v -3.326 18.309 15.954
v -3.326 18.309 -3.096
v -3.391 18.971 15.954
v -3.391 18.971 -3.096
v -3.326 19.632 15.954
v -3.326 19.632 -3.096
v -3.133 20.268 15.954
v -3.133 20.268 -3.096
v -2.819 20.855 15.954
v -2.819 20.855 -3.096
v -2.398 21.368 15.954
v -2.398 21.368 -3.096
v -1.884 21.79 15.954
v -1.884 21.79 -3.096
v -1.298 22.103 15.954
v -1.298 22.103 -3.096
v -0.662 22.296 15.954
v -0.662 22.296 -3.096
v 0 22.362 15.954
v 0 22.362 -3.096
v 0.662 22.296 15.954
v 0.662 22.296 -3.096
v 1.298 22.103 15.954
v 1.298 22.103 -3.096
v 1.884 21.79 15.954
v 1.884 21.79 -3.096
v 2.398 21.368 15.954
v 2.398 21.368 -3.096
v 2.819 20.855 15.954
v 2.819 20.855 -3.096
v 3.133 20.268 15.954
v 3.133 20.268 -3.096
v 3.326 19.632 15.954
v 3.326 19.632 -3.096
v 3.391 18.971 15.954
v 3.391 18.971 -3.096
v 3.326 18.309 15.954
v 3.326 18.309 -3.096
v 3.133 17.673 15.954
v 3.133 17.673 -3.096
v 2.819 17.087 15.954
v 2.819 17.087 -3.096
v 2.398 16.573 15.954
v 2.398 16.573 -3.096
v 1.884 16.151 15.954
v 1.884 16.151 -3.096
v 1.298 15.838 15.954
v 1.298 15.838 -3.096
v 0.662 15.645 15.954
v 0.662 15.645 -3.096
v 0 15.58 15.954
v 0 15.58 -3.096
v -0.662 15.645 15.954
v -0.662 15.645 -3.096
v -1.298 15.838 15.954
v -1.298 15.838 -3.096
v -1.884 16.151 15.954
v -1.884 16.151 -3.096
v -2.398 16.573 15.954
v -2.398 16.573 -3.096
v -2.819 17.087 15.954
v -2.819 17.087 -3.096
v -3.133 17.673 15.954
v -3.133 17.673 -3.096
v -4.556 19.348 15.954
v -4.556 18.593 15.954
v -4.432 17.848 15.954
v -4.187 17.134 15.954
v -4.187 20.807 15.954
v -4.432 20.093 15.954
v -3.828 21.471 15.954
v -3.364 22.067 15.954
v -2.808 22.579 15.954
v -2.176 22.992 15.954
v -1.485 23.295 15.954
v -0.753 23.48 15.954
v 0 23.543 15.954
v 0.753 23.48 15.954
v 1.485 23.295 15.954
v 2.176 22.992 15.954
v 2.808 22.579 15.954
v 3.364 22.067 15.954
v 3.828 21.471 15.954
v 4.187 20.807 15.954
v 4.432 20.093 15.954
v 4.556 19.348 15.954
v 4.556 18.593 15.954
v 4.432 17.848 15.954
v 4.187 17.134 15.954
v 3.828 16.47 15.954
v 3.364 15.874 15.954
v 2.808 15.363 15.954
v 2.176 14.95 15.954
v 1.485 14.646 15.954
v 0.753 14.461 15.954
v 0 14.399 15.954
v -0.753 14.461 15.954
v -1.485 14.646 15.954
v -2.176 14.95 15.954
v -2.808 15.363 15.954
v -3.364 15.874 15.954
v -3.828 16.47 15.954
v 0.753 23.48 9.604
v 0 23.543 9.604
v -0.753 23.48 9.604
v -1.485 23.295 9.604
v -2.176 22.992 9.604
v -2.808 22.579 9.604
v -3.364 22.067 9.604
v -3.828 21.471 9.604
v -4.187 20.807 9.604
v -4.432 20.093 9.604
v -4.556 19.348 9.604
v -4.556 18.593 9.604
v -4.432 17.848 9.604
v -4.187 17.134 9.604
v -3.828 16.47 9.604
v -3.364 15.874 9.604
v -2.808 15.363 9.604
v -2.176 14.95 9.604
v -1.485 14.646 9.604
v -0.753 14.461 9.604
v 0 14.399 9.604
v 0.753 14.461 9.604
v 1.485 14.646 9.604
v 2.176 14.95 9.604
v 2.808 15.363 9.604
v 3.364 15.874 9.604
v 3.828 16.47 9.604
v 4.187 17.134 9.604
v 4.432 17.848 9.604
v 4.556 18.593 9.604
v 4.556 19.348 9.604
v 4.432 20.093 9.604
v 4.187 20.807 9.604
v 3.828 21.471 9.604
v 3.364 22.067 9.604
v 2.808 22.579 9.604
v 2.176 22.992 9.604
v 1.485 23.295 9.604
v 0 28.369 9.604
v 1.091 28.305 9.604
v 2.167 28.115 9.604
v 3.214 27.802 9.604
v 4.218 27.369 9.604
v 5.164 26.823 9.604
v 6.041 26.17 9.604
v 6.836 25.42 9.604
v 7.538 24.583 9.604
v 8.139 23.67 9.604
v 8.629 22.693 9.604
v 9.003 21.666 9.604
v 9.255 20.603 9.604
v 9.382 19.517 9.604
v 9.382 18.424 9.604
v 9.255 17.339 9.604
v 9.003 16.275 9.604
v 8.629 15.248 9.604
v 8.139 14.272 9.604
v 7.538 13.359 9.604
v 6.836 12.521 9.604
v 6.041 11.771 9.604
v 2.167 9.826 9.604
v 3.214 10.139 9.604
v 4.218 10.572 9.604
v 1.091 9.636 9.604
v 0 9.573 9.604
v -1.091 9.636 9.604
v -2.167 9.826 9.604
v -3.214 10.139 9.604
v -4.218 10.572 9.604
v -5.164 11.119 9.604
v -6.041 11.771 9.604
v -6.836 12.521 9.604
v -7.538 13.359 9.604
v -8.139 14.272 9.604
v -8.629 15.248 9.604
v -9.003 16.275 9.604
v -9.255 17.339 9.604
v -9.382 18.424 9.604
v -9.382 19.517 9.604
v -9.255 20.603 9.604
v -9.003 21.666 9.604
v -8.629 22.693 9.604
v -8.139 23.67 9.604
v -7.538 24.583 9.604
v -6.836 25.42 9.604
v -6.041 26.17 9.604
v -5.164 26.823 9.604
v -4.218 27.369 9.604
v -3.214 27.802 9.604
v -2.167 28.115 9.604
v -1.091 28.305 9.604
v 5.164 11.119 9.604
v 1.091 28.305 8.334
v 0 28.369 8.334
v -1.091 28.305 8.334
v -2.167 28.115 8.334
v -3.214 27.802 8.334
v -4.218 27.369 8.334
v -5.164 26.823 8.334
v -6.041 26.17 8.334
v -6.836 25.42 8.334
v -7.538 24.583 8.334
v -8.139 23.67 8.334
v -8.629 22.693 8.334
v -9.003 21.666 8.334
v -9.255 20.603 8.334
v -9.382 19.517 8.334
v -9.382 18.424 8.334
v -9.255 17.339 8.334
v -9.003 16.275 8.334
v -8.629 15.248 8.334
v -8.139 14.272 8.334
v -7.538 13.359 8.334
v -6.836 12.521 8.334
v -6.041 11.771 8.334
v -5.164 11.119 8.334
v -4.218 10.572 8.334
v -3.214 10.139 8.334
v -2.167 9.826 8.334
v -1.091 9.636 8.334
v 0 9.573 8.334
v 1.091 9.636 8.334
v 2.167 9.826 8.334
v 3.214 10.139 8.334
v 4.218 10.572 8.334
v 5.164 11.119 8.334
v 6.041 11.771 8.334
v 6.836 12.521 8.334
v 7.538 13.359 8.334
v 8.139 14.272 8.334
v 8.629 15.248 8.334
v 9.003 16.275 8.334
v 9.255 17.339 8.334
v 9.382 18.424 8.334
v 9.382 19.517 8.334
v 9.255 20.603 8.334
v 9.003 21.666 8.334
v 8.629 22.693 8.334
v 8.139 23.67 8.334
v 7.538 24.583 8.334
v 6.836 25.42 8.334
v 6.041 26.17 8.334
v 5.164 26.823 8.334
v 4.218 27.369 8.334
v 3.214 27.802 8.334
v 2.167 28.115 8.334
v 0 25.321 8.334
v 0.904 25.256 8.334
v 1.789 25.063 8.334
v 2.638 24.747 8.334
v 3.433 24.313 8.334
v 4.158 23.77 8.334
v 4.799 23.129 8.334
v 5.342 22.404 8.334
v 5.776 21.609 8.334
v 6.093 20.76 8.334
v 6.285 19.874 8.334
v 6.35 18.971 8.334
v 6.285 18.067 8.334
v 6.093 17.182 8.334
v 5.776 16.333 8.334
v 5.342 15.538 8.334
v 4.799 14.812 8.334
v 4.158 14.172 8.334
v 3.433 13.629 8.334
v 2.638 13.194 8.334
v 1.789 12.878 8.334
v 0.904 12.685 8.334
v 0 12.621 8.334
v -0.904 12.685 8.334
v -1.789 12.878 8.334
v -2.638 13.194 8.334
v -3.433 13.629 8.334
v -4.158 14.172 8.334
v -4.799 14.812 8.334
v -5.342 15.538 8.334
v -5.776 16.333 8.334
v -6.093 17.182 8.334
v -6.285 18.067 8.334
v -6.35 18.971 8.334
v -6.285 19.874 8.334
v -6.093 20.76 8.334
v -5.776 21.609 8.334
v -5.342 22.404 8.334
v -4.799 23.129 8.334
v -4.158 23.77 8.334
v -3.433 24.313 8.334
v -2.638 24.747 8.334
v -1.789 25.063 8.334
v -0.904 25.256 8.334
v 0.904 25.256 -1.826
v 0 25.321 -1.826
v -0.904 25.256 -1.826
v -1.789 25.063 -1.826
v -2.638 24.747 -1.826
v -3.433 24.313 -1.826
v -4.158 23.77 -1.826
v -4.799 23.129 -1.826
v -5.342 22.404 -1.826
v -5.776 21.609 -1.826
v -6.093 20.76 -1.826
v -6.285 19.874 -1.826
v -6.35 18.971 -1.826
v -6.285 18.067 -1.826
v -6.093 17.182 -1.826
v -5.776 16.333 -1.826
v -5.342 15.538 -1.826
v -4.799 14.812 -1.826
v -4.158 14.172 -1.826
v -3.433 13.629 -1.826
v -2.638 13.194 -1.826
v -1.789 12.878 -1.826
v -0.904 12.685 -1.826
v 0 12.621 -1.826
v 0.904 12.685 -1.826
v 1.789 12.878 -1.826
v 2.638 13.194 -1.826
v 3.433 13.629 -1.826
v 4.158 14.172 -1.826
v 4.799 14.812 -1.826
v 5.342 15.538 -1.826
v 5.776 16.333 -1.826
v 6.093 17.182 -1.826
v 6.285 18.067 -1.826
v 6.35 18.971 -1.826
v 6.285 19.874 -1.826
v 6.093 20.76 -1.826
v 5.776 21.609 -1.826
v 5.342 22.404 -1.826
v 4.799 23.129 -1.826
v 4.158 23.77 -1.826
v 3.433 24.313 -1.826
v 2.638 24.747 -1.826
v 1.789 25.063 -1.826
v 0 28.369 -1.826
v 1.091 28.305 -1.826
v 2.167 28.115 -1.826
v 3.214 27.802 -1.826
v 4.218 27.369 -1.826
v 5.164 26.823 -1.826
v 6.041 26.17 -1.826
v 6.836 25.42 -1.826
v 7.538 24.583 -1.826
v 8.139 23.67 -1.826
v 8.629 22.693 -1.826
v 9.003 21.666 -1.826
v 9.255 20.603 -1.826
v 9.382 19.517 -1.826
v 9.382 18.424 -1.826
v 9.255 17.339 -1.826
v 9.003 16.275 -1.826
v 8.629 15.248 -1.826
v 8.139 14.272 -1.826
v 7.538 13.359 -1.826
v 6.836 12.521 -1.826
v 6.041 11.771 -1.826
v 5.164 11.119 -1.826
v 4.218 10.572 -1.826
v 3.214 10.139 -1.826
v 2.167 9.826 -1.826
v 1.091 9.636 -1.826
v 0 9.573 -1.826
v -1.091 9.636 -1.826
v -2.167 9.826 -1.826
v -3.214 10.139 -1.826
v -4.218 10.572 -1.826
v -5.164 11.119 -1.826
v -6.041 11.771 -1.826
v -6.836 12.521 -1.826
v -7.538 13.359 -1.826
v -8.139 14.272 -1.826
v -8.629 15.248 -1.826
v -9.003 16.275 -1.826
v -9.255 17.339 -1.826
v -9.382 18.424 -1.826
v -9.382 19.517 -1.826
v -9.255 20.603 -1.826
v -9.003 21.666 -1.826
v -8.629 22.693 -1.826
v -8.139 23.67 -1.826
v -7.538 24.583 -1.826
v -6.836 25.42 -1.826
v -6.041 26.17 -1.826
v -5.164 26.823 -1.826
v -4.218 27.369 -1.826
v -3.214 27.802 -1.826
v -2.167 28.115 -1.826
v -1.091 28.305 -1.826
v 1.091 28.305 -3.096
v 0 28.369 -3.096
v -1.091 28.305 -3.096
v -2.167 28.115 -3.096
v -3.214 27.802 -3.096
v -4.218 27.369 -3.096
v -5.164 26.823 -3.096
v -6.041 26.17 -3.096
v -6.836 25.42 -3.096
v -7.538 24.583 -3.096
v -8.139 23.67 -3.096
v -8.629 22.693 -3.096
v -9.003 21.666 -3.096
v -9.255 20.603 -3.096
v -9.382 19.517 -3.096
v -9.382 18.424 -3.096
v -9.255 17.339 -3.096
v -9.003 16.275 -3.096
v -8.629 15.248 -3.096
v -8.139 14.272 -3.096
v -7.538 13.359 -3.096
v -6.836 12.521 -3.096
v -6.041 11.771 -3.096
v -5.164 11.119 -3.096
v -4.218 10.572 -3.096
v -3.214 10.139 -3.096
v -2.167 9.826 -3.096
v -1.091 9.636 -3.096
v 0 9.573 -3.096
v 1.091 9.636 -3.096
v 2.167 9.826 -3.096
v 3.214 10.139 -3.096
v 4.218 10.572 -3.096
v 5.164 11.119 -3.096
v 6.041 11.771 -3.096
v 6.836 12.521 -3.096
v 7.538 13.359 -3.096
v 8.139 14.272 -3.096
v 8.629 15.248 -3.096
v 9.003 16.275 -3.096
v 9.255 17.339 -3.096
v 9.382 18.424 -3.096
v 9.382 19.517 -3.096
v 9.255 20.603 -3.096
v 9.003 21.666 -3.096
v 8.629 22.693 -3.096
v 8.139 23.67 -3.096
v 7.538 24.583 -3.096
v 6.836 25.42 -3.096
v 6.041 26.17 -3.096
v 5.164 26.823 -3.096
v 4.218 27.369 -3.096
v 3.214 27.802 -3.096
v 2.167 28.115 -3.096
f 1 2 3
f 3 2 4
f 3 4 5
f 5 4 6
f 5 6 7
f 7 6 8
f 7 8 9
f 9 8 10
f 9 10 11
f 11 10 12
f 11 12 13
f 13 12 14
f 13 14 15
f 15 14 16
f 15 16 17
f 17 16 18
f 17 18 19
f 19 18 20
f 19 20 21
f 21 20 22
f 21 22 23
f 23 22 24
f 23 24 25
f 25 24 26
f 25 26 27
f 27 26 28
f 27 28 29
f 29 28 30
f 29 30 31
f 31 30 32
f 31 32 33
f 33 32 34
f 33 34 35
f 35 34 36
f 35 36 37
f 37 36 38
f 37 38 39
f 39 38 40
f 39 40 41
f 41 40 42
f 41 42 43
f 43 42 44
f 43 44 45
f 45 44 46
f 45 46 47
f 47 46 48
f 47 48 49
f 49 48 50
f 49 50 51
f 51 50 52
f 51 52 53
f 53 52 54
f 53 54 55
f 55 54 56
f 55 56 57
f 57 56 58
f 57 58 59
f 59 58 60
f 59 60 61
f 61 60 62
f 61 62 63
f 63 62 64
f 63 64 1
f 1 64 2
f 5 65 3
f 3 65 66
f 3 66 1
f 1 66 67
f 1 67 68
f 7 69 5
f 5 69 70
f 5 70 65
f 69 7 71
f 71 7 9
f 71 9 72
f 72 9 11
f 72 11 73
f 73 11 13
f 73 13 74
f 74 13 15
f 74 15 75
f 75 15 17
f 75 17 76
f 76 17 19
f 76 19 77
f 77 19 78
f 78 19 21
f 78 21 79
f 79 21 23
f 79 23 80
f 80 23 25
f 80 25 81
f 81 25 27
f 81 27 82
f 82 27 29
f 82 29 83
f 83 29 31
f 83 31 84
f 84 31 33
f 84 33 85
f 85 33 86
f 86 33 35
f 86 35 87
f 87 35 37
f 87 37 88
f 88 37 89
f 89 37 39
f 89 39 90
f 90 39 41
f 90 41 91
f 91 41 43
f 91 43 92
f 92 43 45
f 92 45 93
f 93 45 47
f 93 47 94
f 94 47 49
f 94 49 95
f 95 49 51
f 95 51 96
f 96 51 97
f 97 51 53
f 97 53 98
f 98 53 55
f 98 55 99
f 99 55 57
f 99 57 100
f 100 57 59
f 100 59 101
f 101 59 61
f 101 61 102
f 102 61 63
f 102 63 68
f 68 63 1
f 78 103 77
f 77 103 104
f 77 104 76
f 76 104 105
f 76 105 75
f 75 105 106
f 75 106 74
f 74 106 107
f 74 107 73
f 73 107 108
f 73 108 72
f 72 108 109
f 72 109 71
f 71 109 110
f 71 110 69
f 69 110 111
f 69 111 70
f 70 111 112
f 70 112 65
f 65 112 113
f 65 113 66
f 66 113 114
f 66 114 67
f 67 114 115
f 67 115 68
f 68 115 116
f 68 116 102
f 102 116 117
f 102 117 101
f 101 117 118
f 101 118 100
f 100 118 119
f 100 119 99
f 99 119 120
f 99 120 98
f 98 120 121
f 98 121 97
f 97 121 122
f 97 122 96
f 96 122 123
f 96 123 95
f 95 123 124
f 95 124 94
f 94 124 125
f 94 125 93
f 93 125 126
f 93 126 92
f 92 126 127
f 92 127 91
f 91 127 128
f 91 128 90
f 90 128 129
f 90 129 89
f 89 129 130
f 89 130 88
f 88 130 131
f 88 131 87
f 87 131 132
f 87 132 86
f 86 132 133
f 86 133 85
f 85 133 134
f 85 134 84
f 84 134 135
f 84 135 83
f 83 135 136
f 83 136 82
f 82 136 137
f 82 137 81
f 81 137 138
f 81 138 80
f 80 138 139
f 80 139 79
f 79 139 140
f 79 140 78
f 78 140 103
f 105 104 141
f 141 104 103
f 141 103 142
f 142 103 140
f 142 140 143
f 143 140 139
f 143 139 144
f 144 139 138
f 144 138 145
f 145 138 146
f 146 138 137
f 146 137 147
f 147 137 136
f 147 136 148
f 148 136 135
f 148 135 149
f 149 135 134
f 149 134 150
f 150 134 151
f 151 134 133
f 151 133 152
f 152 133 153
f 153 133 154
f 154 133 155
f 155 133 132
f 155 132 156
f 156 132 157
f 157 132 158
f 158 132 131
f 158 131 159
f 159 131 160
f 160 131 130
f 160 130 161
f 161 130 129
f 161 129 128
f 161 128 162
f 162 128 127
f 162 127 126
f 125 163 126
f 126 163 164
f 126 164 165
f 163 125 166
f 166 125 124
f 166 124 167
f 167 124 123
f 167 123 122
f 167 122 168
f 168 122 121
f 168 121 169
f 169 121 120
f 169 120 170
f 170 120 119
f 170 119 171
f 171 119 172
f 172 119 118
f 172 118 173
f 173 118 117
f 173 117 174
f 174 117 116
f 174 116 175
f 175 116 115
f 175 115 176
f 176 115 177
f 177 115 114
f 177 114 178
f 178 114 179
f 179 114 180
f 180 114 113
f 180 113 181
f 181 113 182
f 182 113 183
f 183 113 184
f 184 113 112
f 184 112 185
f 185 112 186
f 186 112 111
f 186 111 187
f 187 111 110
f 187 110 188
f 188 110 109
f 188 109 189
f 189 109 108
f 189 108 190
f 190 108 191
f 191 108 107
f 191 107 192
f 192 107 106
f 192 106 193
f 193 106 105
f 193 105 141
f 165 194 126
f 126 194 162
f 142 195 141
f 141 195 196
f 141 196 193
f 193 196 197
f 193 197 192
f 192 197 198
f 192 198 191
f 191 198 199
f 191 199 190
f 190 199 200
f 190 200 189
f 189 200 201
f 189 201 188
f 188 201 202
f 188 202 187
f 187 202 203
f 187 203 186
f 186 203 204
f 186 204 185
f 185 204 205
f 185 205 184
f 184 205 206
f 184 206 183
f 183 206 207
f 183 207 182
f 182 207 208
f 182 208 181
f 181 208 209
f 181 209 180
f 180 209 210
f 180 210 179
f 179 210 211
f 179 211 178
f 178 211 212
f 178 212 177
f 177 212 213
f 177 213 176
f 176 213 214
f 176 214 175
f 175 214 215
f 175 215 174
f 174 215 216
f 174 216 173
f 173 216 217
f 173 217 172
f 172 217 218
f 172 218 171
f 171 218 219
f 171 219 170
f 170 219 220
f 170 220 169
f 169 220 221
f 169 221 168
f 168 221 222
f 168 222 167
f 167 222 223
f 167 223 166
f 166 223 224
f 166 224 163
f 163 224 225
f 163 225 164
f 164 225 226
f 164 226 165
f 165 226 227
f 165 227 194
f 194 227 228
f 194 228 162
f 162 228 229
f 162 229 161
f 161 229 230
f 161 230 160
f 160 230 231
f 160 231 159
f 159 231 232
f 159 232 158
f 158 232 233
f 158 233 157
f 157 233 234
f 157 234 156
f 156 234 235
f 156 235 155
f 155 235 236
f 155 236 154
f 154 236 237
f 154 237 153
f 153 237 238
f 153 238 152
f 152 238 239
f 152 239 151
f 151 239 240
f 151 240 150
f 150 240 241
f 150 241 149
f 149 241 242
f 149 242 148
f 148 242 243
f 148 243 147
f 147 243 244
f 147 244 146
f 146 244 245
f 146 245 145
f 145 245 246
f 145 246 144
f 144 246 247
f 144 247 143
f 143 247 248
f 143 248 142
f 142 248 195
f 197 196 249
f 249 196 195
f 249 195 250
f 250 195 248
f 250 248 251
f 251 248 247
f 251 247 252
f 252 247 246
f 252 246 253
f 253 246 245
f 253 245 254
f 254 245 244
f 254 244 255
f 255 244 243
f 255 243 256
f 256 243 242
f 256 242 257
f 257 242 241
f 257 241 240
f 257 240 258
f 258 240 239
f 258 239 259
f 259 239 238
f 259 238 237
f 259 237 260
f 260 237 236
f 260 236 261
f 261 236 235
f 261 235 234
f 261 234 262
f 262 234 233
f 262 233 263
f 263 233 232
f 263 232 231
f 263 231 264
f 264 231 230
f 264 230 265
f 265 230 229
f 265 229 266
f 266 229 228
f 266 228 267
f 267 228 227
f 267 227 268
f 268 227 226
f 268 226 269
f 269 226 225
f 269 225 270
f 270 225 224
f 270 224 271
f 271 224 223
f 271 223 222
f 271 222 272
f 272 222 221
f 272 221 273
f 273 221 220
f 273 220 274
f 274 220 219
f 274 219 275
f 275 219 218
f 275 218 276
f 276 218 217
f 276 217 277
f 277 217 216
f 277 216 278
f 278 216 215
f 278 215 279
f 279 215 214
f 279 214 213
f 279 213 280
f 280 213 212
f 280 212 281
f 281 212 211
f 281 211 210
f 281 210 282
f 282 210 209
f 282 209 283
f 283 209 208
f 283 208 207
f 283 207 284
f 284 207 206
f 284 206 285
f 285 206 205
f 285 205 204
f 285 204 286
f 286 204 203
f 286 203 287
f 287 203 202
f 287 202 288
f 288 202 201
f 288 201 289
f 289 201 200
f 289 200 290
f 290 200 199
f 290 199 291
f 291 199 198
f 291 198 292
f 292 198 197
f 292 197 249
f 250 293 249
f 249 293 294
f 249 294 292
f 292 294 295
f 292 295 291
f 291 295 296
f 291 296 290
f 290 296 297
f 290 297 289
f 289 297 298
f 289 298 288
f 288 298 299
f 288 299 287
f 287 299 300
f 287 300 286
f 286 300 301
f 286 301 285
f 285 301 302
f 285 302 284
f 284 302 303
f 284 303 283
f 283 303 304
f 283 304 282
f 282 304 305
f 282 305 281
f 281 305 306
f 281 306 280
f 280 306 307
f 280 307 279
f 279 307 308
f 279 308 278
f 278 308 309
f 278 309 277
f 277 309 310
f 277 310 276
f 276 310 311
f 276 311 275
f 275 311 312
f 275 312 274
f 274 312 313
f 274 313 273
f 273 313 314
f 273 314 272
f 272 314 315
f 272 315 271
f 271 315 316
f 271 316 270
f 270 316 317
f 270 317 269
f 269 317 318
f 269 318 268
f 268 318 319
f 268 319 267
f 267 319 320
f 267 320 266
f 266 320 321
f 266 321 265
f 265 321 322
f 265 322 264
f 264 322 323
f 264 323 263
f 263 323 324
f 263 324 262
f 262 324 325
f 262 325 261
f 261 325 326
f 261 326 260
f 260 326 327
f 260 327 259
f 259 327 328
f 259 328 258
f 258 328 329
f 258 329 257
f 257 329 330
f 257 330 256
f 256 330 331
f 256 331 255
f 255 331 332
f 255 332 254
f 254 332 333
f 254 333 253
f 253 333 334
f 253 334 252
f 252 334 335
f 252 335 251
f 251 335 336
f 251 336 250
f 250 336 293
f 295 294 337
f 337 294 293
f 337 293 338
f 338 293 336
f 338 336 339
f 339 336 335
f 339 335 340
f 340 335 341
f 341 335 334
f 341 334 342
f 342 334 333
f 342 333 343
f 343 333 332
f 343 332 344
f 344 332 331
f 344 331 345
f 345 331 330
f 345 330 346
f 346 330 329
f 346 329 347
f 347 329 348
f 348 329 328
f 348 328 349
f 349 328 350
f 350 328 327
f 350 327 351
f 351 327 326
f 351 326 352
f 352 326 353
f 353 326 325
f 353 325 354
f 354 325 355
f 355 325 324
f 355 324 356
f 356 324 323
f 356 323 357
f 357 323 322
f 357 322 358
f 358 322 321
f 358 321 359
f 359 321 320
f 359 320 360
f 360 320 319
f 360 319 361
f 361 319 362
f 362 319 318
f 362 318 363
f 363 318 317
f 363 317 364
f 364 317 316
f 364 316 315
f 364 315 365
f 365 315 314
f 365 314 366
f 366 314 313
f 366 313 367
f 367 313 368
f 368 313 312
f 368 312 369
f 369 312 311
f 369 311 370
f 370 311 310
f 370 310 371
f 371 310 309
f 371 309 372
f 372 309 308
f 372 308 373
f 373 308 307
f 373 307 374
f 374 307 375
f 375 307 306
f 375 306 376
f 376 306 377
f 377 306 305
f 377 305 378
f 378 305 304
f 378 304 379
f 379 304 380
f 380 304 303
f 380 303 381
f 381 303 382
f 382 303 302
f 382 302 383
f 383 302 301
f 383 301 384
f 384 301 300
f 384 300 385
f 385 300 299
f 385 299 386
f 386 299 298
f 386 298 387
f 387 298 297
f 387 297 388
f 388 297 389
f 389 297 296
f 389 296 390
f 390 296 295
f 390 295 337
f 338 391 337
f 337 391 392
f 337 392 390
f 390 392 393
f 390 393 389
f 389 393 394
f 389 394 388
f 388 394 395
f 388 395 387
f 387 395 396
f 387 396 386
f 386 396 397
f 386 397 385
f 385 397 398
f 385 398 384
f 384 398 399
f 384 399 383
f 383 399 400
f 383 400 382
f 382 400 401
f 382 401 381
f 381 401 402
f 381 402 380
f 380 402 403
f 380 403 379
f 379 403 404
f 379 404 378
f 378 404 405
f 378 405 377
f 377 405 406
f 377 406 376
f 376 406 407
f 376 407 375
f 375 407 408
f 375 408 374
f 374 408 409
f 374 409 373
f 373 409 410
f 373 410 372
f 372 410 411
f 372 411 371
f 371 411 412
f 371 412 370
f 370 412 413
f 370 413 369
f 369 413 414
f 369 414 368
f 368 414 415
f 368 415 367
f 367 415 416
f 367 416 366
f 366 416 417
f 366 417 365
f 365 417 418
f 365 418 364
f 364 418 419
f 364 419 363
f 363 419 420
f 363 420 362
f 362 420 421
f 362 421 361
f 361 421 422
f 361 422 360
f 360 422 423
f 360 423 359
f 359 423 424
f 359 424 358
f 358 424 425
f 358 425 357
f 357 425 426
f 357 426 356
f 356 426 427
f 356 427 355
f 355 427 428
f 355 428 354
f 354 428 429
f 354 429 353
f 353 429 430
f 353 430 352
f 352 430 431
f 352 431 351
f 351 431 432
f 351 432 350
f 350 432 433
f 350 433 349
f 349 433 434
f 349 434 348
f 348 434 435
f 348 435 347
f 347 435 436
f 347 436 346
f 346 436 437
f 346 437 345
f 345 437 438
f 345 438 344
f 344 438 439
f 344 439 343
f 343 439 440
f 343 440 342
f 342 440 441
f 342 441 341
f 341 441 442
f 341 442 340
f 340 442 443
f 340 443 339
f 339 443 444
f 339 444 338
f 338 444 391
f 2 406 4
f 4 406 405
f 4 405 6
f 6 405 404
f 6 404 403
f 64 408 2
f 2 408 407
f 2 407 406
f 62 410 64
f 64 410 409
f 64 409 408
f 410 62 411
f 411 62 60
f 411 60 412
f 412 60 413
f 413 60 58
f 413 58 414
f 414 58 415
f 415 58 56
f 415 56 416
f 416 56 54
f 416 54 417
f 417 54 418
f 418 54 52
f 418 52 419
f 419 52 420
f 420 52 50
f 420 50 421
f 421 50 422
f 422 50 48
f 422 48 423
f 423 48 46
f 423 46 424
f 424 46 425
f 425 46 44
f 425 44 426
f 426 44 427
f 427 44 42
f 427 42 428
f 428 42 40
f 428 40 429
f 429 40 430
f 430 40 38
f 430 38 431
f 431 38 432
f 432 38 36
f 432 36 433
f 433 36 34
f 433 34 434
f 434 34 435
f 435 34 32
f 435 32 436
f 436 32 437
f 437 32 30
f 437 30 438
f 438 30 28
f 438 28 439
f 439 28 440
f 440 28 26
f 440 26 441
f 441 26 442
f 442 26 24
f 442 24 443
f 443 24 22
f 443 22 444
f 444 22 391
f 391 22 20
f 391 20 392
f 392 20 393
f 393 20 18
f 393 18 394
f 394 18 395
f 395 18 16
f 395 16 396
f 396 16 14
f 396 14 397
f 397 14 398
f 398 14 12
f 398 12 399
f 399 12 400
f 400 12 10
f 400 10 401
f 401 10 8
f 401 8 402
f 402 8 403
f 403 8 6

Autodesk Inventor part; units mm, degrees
ref_plane "YZ Plane" through (0, 0, 0) normal (1, 0, 0) x (0, 1, 0)
ref_plane "XZ Plane" through (0, 0, 0) normal (0, 1, 0) x (-1, 0, 0)
ref_plane "XY Plane" through (0, 0, 0) normal (0, 0, 1) x (1, 0, 0)
sketch "Sketch1" plane through (0, 0, 0) normal (1, 0, 0) x (0, 1, 0)
  line L0 (18.9706, -3.0956) -> (18.9706, 15.9544)
  line L1 (18.9706, 15.9544) -> (23.5426, 15.9544)
  line L2 (23.5426, 15.9544) -> (23.5426, 9.6044)
  line L3 (23.5426, 9.6044) -> (28.3686, 9.6044)
  line L4 (28.3686, 9.6044) -> (28.3686, 8.3344)
  line L5 (28.3686, 8.3344) -> (25.3206, 8.3344)
  line L6 (25.3206, 8.3344) -> (25.3206, -1.8256)
  line L7 (25.3206, -1.8256) -> (28.3686, -1.8256)
  line L8 (28.3686, -1.8256) -> (28.3686, -3.0956)
  line L9 (28.3686, -3.0956) -> (18.9706, -3.0956)
  point P0 (0, 0)
  dimension "d0" = 1.27
  dimension "d1" = 1.27
  dimension "d2" = 10.16
  dimension "d3" = 6.35
  dimension "d6" = 9.398
  dimension "d11" = 6.35
  dimension "d12" = 4.572
revolve "Revolution1" add sketch "Sketch1" angle 360 about axis through (0, 18.9706, -3.0956) along (0, 0, 1)
sketch "Sketch2" plane through (0, 18.9706, -3.0956) normal (0, 0, -1) x (-1, 0, 0)
  circle A0 centre (0, 0) radius 9.398 projected
  circle A1 centre (0, 0) radius 3.3909
  point P0 (0, -18.9706)
  dimension "d8" = 6.7818
extrude "Extrusion1" cut sketch "Sketch2" against normal blind 50.8 contours A1
properties part number "IdlePully"
